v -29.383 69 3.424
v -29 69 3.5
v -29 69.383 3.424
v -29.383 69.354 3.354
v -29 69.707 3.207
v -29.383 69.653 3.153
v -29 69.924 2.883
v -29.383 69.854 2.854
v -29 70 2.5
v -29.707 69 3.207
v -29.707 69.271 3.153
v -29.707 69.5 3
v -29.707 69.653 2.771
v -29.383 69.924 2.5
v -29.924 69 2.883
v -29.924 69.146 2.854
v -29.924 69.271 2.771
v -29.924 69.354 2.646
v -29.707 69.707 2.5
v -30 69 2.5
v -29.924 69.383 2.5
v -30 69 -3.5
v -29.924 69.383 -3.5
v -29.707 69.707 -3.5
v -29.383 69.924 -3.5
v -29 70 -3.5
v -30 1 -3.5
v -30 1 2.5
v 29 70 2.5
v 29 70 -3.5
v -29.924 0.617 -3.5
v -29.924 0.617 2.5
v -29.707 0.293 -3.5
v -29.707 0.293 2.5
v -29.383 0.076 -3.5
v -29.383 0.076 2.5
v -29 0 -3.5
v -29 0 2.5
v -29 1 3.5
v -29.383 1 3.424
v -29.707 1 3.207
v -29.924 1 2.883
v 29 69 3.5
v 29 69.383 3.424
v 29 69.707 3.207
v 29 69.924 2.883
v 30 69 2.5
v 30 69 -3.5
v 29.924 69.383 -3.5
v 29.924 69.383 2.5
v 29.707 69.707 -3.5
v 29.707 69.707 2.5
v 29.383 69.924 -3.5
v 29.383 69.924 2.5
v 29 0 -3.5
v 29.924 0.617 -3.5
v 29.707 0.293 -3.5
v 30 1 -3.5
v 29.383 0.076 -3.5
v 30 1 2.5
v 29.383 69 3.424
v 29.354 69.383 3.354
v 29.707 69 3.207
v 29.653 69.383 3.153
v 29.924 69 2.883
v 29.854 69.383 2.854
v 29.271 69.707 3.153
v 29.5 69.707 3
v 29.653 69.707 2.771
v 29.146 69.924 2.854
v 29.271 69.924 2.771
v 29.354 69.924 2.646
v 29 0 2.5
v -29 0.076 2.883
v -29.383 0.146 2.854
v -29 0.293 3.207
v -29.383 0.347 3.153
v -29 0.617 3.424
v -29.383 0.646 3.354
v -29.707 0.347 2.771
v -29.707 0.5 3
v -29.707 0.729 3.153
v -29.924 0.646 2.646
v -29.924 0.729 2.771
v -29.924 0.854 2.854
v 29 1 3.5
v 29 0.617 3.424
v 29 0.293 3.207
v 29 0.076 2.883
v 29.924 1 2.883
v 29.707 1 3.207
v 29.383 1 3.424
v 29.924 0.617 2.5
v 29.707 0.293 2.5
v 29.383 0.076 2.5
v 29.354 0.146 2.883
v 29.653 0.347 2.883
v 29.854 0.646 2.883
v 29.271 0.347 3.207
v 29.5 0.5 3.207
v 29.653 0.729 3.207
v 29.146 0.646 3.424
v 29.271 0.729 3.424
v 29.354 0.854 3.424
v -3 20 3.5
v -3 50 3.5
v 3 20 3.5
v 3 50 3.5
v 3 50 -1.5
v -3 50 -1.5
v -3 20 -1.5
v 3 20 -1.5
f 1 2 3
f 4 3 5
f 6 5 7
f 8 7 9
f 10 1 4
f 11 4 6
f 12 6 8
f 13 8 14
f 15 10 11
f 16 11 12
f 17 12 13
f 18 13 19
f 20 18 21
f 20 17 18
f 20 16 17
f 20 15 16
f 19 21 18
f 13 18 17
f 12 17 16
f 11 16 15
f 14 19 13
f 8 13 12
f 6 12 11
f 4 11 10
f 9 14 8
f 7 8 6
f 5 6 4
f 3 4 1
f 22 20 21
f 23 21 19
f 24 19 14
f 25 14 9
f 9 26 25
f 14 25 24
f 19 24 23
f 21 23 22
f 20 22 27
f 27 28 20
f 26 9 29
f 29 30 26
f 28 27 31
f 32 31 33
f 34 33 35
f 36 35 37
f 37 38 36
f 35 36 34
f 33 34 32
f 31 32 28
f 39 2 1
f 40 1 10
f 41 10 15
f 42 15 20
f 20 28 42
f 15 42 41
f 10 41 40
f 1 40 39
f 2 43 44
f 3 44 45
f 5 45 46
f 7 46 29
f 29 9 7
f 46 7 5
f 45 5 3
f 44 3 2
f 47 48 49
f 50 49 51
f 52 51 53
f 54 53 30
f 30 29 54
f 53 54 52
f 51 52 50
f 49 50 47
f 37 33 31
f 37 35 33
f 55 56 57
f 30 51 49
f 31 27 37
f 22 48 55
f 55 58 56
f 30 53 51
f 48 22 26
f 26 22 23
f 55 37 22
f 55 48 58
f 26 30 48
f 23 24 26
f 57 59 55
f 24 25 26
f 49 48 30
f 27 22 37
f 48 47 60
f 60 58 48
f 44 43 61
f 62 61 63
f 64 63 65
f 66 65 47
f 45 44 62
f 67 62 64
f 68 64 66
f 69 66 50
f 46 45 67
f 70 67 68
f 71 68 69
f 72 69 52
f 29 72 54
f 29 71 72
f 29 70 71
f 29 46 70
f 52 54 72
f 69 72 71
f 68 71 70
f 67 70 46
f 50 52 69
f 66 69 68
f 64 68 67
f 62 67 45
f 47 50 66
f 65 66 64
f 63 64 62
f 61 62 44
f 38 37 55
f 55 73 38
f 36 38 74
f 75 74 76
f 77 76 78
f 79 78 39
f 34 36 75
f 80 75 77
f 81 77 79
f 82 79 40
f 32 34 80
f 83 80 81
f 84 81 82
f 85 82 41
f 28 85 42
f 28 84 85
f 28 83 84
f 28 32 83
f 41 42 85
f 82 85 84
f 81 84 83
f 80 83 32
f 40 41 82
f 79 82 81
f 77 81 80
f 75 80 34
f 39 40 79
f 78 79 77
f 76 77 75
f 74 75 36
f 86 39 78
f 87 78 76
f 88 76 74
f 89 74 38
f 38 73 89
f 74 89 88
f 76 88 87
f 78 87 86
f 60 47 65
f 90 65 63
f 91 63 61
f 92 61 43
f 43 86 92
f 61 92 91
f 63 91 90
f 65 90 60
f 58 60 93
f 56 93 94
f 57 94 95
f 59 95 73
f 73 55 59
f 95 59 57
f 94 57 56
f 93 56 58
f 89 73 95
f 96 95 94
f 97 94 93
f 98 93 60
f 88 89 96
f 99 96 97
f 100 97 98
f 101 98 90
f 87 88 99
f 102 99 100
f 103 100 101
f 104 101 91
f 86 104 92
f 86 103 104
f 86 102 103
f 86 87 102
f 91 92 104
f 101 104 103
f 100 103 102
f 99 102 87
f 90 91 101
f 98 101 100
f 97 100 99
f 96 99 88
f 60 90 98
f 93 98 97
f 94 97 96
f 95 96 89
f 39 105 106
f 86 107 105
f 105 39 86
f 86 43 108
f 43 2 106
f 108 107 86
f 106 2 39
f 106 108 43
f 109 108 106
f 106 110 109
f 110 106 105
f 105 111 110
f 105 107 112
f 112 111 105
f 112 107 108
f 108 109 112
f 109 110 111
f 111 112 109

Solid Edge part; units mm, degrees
sketch "Sketch1" plane through (0, 0, 0) normal (0, -1, 0) x (1, 0, 0)
  line L0 (-30, 3.5) -> (30, 3.5)
  line L1 (30, 3.5) -> (30, -3.5)
  line L2 (30, -3.5) -> (-30, -3.5)
  line L3 (-30, -3.5) -> (-30, 3.5)
  dimension "D1" = 60
  dimension "D2" = 7
extrude "Protrusion1" add sketch "Sketch1" against normal blind 70
sketch "Sketch2" plane through (0, 35, 3.5) normal (0, 0, 1) x (0, 1, 0)
  line L0 (15, 3) -> (-15, 3)
  line L1 (-15, 3) -> (-15, -3)
  line L2 (-15, -3) -> (15, -3)
  line L3 (15, -3) -> (15, 3)
  dimension "D1" = 30
  dimension "D2" = 6
  dimension "D3" = 20
extrude "Utskärning_för_vertikal_pelare" cut sketch "Sketch2" against normal blind 5
fillet "Avrundningar_1" radius 1 8 edges at (-30, 35, 3.5) (0, 0, 3.5) (30, 35, 3.5) (0, 70, 3.5) (30, 70, 0) (30, 0, 0) (-30, 70, 0) (-30, 0, 0)
